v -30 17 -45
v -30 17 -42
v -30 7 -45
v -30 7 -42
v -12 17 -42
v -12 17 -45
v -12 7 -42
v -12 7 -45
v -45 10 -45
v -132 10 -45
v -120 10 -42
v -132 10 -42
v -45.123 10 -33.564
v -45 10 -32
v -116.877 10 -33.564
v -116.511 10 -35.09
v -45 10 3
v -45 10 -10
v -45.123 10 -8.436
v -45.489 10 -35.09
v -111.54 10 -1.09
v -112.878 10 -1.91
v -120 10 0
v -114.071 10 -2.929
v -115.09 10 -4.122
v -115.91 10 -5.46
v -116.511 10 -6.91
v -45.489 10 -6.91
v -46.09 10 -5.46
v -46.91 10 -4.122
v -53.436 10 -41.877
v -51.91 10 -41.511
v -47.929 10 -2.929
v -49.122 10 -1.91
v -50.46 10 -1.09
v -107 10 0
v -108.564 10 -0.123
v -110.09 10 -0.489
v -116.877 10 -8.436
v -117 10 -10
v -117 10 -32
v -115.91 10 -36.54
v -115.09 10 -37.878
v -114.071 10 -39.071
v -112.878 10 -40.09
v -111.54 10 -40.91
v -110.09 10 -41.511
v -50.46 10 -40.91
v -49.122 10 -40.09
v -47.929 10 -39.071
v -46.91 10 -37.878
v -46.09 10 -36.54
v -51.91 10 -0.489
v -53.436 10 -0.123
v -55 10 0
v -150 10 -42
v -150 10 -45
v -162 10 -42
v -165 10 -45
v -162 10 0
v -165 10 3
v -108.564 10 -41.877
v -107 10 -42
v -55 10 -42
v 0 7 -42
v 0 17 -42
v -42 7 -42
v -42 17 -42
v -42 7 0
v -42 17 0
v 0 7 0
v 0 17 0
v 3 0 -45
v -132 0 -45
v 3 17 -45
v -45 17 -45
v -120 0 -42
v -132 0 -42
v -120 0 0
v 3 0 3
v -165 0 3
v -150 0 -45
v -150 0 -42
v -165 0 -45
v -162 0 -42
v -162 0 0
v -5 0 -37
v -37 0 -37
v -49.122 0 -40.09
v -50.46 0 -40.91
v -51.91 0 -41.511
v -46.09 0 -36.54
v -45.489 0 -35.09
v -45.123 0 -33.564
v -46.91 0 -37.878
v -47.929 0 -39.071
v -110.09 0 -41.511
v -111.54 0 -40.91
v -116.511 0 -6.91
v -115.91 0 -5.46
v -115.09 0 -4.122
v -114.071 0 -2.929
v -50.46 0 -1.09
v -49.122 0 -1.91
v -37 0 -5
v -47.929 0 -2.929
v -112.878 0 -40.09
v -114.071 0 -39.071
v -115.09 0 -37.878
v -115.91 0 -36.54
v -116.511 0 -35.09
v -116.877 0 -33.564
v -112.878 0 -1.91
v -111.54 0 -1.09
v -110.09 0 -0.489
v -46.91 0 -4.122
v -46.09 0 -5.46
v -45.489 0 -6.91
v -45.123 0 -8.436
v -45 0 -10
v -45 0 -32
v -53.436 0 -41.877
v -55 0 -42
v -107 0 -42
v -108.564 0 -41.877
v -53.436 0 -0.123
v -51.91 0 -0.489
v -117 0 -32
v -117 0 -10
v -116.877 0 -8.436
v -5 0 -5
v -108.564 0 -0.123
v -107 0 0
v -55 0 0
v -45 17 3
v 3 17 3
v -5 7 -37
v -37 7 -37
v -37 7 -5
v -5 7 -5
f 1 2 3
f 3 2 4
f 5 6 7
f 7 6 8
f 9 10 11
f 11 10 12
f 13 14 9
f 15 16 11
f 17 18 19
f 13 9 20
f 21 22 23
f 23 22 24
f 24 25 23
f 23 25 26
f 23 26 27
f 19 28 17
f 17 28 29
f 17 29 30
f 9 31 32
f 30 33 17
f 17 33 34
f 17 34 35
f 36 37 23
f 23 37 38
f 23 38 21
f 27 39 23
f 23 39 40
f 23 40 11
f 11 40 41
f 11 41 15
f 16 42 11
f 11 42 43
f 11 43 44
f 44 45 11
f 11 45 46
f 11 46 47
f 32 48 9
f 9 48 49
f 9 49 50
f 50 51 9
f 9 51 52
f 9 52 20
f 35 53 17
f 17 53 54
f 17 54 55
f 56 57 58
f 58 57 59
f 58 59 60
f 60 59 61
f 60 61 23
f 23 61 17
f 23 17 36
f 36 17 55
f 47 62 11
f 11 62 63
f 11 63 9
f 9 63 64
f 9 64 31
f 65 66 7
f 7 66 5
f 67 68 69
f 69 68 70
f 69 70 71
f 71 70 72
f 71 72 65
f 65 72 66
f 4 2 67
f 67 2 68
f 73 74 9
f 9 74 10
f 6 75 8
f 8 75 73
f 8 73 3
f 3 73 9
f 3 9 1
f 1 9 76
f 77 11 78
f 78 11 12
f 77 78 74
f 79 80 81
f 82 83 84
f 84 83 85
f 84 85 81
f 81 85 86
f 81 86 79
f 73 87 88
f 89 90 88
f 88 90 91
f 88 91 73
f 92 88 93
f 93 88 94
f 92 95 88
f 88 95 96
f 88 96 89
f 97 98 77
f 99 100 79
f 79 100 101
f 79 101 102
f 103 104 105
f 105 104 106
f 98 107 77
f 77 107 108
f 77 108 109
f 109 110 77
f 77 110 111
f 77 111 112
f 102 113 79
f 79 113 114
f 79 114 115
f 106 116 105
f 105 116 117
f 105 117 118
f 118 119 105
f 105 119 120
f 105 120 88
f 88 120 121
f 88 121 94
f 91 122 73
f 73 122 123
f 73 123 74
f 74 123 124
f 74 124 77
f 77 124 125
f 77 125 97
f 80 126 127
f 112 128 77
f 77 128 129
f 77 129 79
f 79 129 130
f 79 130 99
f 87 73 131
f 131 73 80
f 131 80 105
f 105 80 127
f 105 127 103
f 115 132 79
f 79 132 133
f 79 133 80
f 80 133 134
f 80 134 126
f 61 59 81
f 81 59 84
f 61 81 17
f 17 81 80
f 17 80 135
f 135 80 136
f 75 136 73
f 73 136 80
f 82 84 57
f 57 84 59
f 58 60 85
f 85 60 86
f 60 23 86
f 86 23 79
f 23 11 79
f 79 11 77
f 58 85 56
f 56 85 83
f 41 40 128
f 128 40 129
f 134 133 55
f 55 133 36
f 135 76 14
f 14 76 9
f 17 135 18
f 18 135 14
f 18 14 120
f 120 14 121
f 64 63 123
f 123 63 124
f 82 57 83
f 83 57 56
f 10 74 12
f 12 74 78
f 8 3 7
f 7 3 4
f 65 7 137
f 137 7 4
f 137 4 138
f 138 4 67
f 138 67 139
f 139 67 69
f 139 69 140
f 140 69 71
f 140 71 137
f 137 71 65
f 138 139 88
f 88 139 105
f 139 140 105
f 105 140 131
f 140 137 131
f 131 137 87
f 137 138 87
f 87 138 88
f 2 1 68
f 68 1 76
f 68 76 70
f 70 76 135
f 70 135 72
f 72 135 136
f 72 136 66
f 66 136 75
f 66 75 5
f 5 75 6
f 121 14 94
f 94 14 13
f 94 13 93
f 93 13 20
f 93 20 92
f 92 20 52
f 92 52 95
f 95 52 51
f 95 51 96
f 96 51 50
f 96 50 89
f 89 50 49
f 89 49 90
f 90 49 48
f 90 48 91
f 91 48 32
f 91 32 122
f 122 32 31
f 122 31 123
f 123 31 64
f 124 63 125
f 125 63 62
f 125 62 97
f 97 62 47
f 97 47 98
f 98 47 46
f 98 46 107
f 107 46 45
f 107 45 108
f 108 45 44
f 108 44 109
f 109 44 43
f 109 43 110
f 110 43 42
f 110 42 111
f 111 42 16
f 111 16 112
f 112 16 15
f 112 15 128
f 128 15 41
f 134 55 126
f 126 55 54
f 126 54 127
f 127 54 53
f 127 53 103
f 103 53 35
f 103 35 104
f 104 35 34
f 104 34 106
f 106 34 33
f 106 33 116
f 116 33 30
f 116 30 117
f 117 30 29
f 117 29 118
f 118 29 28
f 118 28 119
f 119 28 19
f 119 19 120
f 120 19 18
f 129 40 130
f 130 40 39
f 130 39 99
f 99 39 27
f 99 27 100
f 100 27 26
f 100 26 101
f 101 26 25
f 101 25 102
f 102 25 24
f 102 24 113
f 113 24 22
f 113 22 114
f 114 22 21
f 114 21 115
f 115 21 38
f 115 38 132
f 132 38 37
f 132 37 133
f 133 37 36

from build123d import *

# Parameters (mm, degrees)
SKETCH1_W           = 168
SKETCH1_H           = 48
SKETCH1_W_2         = 42
SKETCH1_H_2         = 42
SKETCH1_W_3         = 72
BOSS_EXTRUDE1_DEPTH = 10
SKETCH2_W           = 18
SKETCH2_H           = 10
CUT_EXTRUDE1_DEPTH  = 10
SKETCH3_W           = 42
SKETCH3_H           = 42
SKETCH3_W_2         = 32
SKETCH3_H_2         = 32
BOSS_EXTRUDE2_DEPTH = 7
BOSS_EXTRUDE3_DEPTH = 7
FILLET1_R           = 10
SKETCH6_W           = 18
SKETCH6_H           = 7
BOSS_EXTRUDE4_DEPTH = 3


with BuildPart() as part:
    # Sketch1 → Boss-Extrude1 (new body)
    with BuildSketch(Plane(origin=(0, 0, 0), x_dir=(1, 0, 0), z_dir=(0, 1, 0))):
        with Locations((-81, 21)):
            Rectangle(SKETCH1_W, SKETCH1_H)
        with Locations((-141, 21)):
            Rectangle(SKETCH1_W_2, SKETCH1_H_2, mode=Mode.SUBTRACT)
        with Locations((-21, 21)):
            Rectangle(SKETCH1_W_2, SKETCH1_H_2, mode=Mode.SUBTRACT)
        with Locations((-81, 21)):
            Rectangle(SKETCH1_W_3, SKETCH1_H_2, mode=Mode.SUBTRACT)
    extrude(amount=BOSS_EXTRUDE1_DEPTH)

    # Sketch2 → Cut-Extrude1 (cut)
    with BuildSketch(Plane(origin=(0, 0, -45), x_dir=(-1, 0, 0), z_dir=(0, 0, -1))):
        with Locations((21, 5)):
            Rectangle(SKETCH2_W, SKETCH2_H)
        with Locations((141, 5)):
            Rectangle(SKETCH2_W, SKETCH2_H)
    extrude(amount=-CUT_EXTRUDE1_DEPTH, mode=Mode.SUBTRACT)

    # Sketch3 → Boss-Extrude2 (add)
    with BuildSketch(Plane.XZ):
        with Locations((-21, -21)):
            Rectangle(SKETCH3_W, SKETCH3_H)
        with Locations((-21, -21)):
            Rectangle(SKETCH3_W_2, SKETCH3_H_2, mode=Mode.SUBTRACT)
    extrude(amount=-BOSS_EXTRUDE2_DEPTH)

    # Sketch4 → Boss-Extrude3 (add)
    with BuildSketch(Plane(origin=(0, 10, 0), x_dir=(1, 0, 0), z_dir=(0, 1, 0))):
        Polygon((-42, 42), (-30, 42), (-30, 45), (-42, 45), (-45, 45), (-45, 42), (-45, 0), (-45, -3), (-42, -3), (3, -3), (3, 0), (3, 42), (3, 45), (0, 45), (-12, 45), (-12, 42), (0, 42), (0, 0), (-42, 0), align=None)
    extrude(amount=BOSS_EXTRUDE3_DEPTH)

    # Fillet1
    fillet1_edges = [part.edges().sort_by_distance(p)[0] for p in [
        (-117, 5, -42),
        (-117, 5, 0),
        (-45, 5, 0),
        (-45, 5, -42),
    ]]
    fillet(fillet1_edges, radius=FILLET1_R)

    # Sketch6 → Boss-Extrude4 (add)
    with BuildSketch(Plane(origin=(0, 0, -42), x_dir=(-1, 0, 0), z_dir=(0, 0, -1))):
        with Locations((21, 3.5)):
            Rectangle(SKETCH6_W, SKETCH6_H)
    extrude(amount=BOSS_EXTRUDE4_DEPTH)


solid = part.part
